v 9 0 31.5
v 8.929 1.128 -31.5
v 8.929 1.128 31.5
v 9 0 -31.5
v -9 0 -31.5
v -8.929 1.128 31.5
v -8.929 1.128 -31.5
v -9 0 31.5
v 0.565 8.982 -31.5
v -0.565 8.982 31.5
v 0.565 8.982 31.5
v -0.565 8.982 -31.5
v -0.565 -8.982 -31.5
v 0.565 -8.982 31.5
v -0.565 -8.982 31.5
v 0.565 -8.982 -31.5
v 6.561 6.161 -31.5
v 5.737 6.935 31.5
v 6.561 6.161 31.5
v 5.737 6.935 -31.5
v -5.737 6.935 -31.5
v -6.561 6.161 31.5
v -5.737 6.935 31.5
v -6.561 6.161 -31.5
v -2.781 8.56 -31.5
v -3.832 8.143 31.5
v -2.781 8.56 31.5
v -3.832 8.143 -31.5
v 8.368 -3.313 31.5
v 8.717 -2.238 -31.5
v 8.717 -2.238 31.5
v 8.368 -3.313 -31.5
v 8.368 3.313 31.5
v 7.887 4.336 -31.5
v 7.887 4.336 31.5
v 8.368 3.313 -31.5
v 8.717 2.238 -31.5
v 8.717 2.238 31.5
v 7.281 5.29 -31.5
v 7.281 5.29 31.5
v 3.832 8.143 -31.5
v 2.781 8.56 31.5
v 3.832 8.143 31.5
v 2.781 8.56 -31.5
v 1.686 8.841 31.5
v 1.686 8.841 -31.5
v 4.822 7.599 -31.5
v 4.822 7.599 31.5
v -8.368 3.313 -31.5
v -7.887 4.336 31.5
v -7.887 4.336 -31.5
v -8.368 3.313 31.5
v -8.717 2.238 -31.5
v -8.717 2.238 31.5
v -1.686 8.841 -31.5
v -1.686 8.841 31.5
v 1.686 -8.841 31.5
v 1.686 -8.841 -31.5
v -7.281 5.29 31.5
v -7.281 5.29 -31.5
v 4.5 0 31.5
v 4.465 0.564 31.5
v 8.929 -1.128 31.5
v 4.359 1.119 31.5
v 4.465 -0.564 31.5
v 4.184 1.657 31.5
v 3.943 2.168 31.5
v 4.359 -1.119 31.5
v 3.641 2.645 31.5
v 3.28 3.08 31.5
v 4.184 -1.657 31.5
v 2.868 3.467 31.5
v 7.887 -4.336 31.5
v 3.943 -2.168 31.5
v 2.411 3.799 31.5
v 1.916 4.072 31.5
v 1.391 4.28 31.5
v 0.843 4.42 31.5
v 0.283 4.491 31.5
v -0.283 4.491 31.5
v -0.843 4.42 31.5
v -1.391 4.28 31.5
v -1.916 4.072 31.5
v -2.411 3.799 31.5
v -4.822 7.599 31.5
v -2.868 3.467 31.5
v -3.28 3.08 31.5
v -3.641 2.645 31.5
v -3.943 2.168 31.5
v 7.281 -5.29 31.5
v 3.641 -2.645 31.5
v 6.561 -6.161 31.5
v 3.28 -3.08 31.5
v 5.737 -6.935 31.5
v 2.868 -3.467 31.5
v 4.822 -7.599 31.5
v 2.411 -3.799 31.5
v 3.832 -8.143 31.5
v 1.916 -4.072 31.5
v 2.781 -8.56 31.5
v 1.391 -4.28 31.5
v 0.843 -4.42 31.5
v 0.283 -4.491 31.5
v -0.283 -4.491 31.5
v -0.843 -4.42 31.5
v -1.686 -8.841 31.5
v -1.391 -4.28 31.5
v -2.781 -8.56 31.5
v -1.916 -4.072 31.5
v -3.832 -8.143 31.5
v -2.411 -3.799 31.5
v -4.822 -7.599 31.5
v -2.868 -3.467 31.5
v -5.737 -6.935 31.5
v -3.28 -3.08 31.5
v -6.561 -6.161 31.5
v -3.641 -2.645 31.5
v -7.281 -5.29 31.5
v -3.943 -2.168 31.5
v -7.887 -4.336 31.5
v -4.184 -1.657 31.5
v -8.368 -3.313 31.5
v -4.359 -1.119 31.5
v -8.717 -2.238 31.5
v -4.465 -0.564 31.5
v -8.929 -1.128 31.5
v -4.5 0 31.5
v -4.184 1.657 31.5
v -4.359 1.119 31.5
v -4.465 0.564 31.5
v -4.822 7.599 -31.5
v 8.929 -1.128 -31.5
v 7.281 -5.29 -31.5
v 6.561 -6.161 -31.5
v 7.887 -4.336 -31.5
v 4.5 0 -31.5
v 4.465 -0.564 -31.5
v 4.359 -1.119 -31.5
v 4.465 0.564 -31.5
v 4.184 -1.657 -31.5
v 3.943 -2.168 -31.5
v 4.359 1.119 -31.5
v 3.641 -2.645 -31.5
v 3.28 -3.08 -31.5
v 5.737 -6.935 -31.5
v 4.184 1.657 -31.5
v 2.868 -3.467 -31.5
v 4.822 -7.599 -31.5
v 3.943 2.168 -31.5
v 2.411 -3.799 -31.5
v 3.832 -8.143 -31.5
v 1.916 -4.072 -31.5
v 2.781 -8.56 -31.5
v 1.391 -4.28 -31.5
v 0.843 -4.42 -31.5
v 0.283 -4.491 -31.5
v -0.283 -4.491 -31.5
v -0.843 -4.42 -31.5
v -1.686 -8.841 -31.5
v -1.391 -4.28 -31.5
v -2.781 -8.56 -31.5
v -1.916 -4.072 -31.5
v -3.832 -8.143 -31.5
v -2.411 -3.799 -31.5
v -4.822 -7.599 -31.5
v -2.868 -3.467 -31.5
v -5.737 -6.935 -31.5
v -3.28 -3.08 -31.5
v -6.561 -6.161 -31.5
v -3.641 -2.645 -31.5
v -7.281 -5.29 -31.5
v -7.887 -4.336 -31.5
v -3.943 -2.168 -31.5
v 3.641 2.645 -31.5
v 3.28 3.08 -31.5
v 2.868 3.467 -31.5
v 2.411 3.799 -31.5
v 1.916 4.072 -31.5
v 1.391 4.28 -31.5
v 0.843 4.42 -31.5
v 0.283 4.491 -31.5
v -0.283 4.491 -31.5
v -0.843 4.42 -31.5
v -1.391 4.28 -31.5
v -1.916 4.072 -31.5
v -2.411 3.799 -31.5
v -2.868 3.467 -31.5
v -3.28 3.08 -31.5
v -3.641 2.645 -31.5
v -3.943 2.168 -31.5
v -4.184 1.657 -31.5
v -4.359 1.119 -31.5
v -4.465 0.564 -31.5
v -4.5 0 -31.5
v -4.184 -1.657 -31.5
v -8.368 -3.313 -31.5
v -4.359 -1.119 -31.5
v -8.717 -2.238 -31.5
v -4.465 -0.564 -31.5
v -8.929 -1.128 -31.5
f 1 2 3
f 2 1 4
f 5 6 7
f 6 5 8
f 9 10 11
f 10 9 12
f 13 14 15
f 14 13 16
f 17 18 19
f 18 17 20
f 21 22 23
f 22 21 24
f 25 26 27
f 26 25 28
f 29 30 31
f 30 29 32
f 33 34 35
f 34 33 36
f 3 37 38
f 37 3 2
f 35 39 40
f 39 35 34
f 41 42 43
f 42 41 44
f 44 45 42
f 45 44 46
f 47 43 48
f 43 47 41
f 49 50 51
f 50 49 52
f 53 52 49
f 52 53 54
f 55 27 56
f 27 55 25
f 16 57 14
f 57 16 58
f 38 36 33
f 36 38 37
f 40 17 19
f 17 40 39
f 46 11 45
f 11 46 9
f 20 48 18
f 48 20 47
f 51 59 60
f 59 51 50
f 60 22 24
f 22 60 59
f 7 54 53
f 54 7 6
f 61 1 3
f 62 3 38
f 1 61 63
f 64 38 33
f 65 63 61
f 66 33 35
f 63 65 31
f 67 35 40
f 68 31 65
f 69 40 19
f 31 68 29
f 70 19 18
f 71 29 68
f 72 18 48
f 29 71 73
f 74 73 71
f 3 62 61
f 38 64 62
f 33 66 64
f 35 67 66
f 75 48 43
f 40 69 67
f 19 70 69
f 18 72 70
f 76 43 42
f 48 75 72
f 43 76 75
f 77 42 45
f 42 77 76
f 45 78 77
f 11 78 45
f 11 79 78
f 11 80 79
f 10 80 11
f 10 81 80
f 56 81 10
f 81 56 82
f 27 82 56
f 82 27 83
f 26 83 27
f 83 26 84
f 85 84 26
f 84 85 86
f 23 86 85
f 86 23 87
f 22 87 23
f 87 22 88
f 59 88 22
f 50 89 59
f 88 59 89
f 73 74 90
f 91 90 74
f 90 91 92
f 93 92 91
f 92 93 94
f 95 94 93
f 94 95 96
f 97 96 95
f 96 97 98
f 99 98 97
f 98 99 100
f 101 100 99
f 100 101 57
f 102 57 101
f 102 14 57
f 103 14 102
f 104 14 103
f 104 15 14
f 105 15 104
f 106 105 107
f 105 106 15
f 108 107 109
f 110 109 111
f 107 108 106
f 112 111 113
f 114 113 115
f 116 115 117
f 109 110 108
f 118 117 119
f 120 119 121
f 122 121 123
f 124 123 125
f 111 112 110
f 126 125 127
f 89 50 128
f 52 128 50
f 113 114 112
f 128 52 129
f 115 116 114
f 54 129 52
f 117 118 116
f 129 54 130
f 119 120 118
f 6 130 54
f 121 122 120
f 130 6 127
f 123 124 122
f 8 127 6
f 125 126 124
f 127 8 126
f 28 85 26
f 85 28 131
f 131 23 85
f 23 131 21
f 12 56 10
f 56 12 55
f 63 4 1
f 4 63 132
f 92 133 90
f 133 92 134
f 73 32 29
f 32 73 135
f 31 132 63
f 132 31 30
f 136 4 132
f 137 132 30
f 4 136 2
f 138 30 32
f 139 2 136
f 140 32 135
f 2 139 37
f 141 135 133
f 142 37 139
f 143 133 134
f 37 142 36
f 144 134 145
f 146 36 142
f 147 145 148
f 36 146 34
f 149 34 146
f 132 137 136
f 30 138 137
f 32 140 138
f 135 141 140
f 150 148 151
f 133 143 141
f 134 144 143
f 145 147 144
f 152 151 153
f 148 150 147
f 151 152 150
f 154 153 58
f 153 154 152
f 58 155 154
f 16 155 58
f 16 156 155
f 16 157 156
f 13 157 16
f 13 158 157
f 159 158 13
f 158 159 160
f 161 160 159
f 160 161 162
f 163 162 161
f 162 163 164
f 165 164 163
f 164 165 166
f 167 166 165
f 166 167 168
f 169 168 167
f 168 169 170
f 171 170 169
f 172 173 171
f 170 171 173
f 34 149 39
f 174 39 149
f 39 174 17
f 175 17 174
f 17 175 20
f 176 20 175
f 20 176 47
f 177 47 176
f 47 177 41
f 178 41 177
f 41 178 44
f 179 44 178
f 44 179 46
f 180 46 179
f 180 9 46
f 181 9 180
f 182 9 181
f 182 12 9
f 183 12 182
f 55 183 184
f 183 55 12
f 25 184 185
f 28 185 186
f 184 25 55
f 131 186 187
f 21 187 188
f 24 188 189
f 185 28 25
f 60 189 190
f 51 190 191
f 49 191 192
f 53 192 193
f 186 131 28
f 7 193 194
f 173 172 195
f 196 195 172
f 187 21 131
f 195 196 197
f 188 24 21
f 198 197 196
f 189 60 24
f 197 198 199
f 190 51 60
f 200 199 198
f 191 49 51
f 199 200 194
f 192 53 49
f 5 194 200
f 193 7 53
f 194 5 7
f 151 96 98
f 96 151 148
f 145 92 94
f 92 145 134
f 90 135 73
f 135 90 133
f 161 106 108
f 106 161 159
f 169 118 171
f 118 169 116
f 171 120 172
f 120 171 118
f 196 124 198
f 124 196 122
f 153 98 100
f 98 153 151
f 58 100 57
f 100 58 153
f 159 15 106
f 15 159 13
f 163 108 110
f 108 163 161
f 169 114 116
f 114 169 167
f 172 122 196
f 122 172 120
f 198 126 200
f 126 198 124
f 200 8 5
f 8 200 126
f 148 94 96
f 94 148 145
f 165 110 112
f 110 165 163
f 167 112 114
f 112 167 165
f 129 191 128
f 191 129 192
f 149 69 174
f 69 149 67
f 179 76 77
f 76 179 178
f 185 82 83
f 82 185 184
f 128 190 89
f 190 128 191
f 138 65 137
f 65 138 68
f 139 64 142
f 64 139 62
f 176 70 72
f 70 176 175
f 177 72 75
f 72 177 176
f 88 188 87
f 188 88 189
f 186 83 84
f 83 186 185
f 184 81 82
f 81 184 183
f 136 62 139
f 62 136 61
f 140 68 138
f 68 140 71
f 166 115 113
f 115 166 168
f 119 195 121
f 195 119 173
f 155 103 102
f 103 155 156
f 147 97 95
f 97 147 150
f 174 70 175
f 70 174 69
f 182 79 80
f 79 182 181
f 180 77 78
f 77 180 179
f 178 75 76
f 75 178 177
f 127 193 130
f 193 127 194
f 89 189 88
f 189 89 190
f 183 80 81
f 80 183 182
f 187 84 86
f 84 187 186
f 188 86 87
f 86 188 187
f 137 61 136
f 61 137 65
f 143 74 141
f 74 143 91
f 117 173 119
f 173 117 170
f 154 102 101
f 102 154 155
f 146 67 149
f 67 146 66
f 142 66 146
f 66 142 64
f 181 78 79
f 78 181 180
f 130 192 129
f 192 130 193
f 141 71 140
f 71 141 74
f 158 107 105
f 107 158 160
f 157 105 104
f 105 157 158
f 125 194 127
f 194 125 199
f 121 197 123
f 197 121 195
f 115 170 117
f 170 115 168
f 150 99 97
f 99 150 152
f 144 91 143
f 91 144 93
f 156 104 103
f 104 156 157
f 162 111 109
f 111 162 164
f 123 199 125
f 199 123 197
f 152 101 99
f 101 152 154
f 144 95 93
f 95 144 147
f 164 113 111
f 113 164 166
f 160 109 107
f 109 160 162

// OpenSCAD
$fn = 50;


difference() {
	union() {
		translate(v = [0, 0, -31.5000000000]) {
			cylinder(h = 63, r = 9.0000000000);
		}
	}
	union() {
		translate(v = [0, 0, -100.0000000000]) {
			cylinder(h = 200, r = 4.5000000000);
		}
	}
}
